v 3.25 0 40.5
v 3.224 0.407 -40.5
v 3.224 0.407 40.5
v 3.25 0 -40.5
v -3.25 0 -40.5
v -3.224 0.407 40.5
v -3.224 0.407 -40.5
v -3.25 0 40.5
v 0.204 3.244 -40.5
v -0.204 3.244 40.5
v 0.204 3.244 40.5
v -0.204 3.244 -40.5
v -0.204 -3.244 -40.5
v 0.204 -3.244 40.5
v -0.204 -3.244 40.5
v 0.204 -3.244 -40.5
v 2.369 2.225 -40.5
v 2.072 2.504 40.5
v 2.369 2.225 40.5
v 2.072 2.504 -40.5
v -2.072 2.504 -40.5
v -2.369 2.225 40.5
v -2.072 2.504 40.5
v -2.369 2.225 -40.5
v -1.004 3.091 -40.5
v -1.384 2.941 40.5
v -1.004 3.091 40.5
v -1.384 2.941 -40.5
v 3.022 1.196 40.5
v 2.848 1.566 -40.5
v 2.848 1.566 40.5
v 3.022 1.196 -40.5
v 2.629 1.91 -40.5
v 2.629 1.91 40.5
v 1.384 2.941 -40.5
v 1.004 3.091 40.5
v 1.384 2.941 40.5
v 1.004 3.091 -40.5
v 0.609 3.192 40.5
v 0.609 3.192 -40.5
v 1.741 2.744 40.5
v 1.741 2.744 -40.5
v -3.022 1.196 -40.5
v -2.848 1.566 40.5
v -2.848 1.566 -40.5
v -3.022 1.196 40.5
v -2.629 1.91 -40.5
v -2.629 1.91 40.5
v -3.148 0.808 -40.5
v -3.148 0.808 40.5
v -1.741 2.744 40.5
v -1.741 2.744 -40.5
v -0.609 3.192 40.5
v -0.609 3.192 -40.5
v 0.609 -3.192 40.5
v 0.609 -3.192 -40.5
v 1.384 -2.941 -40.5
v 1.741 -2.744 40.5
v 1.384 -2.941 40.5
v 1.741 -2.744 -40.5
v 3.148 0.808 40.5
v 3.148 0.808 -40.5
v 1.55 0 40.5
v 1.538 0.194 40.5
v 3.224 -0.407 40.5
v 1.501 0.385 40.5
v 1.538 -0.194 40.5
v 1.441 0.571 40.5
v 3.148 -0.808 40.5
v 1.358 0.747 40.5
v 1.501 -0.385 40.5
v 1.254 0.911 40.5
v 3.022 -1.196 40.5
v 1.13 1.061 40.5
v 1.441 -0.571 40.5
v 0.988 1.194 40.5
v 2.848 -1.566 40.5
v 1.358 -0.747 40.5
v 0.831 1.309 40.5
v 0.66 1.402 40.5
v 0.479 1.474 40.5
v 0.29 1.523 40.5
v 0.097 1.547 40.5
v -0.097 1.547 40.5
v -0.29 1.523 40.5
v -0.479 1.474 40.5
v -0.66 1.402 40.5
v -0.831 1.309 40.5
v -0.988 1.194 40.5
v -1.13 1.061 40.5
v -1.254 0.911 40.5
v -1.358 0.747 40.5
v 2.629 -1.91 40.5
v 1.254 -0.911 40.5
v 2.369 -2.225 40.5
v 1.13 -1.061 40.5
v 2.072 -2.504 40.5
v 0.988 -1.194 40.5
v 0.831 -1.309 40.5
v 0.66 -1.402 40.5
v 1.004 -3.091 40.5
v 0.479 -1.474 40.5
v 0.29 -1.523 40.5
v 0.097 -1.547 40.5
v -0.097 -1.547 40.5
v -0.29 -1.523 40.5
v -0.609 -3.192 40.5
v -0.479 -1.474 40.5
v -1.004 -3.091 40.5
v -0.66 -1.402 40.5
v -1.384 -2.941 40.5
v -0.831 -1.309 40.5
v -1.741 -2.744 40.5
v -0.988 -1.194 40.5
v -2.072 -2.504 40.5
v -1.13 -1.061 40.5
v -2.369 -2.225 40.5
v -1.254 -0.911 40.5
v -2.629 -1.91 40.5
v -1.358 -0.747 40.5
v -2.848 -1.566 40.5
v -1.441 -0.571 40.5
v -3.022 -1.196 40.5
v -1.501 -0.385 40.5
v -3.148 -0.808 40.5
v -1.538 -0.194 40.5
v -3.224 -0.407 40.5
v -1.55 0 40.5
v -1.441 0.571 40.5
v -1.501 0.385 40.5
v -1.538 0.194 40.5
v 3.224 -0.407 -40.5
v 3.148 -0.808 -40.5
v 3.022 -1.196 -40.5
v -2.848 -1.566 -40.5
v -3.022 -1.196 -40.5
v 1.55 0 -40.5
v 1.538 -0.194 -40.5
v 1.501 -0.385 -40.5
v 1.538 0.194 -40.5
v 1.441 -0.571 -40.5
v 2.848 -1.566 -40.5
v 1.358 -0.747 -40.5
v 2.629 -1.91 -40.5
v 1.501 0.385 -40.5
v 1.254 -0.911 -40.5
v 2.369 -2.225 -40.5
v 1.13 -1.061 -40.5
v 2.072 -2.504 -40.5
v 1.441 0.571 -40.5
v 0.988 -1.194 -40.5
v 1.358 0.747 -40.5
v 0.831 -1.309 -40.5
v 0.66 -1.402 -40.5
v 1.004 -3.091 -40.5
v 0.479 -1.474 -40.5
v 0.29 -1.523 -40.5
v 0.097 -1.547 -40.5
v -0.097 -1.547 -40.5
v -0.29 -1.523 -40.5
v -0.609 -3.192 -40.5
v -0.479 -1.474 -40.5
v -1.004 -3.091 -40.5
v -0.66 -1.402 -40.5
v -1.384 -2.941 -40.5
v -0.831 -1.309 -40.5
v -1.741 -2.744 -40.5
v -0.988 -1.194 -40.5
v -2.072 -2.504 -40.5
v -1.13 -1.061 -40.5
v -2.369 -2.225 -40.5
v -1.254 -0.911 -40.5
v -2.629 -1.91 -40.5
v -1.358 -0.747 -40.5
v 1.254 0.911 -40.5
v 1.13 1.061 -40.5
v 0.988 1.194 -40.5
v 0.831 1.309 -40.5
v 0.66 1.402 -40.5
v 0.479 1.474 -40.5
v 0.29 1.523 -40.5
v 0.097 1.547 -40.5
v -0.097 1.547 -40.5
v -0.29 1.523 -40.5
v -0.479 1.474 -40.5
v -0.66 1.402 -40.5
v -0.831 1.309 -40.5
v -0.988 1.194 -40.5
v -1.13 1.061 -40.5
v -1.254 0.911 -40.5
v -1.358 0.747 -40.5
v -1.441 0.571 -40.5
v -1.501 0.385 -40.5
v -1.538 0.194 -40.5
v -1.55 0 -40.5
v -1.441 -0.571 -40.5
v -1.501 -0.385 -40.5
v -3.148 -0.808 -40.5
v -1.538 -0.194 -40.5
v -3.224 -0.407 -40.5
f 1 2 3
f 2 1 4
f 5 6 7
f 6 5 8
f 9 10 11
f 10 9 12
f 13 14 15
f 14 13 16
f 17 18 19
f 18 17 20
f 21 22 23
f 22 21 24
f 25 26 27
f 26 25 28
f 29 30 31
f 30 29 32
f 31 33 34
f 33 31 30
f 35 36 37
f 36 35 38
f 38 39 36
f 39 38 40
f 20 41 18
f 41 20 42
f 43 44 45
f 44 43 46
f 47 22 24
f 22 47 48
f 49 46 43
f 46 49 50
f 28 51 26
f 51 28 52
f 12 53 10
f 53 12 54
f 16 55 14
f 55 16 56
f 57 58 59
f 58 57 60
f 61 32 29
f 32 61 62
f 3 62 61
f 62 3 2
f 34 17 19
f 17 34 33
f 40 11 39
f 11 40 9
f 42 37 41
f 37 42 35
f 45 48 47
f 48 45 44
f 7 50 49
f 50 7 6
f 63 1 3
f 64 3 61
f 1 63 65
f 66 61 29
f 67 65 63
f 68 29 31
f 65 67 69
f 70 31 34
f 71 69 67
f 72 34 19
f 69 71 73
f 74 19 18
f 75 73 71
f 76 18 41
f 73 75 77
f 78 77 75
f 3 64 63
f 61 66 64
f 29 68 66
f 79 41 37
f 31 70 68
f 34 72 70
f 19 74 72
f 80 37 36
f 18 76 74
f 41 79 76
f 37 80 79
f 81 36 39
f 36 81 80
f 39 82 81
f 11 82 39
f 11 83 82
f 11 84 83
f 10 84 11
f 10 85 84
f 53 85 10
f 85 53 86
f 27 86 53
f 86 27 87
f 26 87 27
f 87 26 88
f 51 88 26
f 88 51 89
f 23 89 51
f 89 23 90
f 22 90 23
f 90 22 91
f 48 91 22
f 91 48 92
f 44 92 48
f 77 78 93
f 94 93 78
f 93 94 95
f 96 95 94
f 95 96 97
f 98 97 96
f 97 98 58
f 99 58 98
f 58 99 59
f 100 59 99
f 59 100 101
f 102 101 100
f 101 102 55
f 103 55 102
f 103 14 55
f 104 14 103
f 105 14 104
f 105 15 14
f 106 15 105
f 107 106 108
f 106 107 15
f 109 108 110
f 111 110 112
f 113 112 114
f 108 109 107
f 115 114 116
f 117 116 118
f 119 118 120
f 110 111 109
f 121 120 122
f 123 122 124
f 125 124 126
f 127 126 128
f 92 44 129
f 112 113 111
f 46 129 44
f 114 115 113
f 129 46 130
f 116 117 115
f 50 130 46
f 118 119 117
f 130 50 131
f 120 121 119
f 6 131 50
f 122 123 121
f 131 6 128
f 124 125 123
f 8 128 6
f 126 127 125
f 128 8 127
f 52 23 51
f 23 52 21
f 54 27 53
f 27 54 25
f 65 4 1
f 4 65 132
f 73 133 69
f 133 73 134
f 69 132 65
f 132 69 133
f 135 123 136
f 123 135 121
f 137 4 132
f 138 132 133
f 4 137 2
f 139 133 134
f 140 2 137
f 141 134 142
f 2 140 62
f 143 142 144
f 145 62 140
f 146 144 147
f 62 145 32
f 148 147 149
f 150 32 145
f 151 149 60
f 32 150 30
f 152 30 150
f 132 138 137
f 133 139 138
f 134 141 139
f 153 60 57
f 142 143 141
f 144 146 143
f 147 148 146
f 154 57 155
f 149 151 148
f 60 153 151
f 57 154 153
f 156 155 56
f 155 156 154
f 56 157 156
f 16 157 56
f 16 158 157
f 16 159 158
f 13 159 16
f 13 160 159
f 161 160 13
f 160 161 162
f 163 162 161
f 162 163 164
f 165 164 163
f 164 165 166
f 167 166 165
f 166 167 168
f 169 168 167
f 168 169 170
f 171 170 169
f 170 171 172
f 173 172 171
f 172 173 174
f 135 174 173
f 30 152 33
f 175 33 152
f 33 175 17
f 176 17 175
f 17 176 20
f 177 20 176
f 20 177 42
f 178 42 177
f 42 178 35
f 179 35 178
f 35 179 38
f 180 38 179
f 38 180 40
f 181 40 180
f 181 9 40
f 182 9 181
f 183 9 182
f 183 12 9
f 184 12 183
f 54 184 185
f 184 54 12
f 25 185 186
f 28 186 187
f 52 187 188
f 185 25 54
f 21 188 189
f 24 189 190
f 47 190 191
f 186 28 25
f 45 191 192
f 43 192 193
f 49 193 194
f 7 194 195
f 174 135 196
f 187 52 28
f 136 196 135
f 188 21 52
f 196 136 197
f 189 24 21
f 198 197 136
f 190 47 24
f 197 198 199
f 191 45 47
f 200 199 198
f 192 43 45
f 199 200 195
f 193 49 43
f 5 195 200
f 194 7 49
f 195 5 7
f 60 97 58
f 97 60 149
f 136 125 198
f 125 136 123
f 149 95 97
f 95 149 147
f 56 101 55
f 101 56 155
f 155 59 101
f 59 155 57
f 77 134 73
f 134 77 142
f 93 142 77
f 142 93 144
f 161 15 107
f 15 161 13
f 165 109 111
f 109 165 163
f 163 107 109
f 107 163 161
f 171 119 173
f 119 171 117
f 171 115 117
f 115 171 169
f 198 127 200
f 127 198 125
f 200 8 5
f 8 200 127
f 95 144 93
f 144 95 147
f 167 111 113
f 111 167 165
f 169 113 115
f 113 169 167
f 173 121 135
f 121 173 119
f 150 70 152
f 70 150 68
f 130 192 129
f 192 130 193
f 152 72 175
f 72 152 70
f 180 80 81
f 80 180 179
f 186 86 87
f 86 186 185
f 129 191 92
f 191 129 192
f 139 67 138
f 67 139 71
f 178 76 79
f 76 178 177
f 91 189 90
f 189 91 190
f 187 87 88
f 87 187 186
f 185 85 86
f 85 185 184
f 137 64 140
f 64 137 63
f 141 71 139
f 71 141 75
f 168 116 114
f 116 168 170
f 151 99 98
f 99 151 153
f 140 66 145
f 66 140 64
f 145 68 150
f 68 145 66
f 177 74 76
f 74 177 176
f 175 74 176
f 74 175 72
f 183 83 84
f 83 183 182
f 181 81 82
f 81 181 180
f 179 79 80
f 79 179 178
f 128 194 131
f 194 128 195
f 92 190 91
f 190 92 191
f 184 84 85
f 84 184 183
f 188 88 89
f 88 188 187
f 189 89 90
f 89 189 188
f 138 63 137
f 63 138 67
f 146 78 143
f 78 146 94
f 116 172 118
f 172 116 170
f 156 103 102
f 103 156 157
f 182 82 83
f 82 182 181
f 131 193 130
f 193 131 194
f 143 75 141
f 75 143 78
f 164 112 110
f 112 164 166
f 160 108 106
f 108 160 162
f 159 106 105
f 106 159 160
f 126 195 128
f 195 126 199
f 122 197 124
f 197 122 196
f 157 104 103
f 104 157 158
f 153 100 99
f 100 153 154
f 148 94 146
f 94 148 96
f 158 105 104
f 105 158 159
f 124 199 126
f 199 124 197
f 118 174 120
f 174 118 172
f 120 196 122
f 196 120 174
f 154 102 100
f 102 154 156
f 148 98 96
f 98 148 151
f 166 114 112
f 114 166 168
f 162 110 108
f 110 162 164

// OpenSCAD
$fn = 50;


difference() {
	union() {
		translate(v = [0, 0, -40.5000000000]) {
			cylinder(h = 81, r = 3.2500000000);
		}
	}
	union() {
		translate(v = [0, 0, -100.0000000000]) {
			cylinder(h = 200, r = 1.5500000000);
		}
	}
}
